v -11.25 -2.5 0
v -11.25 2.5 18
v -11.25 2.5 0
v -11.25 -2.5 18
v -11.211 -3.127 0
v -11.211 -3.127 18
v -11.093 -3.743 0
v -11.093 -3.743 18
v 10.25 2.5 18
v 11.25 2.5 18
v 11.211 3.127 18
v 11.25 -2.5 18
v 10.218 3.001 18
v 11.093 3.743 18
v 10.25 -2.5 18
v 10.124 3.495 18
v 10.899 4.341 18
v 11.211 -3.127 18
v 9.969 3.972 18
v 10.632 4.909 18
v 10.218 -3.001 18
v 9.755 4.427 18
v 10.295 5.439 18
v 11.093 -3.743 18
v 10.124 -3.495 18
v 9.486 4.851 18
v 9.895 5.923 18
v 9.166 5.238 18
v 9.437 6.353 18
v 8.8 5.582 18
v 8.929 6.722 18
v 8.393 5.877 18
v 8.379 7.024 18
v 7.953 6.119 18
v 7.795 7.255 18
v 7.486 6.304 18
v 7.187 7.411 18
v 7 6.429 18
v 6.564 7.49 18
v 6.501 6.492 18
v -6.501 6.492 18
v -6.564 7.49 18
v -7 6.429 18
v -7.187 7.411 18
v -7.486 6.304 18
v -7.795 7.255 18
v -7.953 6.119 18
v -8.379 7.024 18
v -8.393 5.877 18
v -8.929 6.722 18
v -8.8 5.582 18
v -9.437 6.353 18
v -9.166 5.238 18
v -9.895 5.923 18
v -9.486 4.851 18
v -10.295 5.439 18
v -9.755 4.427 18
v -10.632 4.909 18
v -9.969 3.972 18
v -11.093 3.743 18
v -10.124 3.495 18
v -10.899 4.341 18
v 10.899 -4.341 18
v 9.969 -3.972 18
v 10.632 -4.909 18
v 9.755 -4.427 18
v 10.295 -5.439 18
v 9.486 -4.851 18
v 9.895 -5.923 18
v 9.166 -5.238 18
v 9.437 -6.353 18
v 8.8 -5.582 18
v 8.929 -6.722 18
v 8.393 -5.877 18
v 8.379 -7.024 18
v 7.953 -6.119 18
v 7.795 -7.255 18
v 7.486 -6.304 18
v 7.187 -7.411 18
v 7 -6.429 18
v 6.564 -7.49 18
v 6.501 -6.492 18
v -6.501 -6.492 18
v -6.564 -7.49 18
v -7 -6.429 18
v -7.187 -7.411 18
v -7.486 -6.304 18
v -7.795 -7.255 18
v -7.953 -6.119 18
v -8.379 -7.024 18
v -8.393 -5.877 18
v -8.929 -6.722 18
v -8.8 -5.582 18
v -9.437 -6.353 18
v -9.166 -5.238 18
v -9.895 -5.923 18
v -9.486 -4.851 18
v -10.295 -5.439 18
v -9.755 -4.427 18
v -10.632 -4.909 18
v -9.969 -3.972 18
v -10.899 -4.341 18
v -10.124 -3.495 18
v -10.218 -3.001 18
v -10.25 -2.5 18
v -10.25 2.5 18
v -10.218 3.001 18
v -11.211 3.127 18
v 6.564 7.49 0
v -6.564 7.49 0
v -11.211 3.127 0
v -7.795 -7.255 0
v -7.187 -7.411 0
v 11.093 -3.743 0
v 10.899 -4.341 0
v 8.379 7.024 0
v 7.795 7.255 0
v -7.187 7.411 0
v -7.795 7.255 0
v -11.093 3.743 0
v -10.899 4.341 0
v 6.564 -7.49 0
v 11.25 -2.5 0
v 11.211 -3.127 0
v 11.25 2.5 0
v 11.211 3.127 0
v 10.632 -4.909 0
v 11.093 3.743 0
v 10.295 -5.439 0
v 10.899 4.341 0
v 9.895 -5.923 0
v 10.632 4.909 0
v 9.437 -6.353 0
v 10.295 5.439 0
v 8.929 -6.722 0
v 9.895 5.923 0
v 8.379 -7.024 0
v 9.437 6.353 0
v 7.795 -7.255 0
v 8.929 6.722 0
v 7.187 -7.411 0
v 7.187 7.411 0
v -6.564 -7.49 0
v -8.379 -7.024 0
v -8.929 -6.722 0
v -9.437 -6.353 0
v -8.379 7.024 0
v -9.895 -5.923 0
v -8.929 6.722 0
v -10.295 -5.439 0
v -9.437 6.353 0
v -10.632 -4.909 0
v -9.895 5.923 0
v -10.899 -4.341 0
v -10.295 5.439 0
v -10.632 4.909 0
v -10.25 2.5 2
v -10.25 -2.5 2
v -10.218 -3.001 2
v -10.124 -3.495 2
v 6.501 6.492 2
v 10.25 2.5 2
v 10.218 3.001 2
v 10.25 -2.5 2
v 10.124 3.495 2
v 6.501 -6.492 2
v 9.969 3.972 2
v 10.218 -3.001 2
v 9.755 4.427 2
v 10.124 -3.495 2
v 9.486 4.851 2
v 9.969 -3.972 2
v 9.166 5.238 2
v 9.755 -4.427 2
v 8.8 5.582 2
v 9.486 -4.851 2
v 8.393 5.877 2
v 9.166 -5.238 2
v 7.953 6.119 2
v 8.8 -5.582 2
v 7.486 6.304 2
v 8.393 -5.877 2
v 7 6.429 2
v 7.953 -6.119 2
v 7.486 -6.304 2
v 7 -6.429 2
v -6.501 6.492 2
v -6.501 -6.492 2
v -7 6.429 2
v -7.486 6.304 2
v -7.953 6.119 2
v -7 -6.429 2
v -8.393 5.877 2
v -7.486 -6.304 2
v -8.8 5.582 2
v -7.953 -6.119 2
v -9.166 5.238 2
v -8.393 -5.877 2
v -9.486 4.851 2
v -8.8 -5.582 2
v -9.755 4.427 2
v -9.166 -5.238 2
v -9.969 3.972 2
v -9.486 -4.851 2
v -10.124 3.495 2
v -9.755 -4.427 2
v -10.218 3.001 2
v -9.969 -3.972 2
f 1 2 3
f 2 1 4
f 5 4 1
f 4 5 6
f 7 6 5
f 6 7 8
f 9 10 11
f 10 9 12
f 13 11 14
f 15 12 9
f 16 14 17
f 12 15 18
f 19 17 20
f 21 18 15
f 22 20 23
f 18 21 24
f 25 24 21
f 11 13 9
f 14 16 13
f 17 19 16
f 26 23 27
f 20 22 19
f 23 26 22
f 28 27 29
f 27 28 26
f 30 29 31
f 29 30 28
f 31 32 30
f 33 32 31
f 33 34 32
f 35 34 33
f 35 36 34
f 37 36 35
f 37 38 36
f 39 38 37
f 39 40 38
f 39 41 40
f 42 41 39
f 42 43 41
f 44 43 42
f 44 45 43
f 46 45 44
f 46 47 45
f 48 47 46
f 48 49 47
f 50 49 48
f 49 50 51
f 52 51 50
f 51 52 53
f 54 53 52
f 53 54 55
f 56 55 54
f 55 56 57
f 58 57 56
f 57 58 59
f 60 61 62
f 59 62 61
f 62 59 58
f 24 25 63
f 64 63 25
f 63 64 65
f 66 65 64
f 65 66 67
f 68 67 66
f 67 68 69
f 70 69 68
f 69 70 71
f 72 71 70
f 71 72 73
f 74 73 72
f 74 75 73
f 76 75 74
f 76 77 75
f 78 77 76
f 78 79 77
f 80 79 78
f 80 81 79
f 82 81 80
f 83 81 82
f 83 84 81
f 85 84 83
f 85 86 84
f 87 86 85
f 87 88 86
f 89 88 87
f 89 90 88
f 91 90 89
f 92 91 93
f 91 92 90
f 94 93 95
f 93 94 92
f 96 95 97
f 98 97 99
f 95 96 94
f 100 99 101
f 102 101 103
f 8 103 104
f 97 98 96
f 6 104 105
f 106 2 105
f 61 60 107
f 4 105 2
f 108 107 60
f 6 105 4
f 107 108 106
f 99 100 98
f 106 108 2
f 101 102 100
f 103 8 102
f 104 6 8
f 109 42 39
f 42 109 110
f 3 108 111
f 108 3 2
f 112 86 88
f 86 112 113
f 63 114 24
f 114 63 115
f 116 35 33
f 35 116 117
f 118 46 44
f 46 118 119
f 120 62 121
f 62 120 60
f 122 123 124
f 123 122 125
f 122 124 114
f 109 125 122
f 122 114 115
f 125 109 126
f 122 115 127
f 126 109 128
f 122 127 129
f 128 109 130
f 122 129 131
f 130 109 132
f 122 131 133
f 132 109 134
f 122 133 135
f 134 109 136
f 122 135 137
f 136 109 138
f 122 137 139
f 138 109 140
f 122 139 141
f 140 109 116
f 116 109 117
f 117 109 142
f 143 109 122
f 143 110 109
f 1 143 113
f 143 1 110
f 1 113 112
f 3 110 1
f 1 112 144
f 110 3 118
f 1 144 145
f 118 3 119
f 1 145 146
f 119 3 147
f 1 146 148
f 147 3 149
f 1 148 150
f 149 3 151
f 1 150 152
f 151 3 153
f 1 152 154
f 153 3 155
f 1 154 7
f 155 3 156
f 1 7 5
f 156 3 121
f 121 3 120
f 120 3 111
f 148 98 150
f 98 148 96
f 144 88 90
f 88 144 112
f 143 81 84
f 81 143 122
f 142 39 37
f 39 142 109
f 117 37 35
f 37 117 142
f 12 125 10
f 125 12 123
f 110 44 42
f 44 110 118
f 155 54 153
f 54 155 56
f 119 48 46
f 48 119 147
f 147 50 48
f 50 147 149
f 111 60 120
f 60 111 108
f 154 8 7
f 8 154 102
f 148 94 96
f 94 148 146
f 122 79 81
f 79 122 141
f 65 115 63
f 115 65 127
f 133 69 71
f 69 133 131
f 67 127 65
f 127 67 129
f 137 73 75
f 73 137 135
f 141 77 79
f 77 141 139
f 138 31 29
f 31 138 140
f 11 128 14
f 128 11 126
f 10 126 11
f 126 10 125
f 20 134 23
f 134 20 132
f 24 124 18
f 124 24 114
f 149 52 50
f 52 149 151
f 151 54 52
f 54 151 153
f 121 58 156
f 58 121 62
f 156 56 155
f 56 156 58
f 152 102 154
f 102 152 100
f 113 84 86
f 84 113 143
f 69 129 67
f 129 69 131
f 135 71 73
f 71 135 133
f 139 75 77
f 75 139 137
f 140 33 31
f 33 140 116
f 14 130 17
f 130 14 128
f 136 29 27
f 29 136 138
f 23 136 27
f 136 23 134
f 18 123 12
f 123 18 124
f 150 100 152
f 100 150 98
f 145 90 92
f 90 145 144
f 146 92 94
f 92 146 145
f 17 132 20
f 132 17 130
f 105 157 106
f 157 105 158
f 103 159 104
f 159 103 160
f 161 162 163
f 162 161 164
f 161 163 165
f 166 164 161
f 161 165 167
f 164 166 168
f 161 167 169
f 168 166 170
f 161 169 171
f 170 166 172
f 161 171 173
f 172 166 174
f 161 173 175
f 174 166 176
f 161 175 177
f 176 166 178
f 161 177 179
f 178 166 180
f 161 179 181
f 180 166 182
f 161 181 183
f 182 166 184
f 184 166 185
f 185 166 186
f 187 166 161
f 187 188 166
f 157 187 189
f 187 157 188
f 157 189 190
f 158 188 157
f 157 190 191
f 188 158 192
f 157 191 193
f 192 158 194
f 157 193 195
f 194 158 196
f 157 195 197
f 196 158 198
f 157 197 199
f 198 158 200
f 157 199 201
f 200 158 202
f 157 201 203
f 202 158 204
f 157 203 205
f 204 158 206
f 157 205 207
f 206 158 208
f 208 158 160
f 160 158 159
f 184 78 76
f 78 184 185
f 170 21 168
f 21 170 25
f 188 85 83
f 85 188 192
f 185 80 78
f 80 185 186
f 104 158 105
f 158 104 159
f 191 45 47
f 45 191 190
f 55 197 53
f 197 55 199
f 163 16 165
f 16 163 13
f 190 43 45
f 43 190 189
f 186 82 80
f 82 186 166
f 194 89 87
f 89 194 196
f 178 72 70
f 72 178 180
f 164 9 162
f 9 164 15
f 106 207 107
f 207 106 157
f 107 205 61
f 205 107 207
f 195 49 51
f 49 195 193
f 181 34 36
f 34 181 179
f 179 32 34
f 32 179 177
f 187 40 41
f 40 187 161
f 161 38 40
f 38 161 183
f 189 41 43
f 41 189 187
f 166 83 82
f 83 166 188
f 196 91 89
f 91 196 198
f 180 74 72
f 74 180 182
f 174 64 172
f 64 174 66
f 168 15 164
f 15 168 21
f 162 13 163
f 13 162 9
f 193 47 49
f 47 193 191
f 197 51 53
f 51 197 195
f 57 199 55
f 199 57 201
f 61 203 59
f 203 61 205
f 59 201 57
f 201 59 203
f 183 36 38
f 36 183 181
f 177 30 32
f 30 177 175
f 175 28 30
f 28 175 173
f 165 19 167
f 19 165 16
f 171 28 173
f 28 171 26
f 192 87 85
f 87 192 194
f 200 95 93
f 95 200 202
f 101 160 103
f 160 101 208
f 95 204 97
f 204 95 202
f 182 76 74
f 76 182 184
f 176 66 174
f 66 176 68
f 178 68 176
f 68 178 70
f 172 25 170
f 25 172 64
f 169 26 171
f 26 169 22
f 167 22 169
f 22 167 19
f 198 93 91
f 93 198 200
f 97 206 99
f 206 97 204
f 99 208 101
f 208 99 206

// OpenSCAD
$fn = 50;


difference() {
	union() {
		hull() {
			translate(v = [-6.2500000000, 2.5000000000, 0]) {
				cylinder(h = 18, r = 5);
			}
			translate(v = [6.2500000000, 2.5000000000, 0]) {
				cylinder(h = 18, r = 5);
			}
			translate(v = [-6.2500000000, -2.5000000000, 0]) {
				cylinder(h = 18, r = 5);
			}
			translate(v = [6.2500000000, -2.5000000000, 0]) {
				cylinder(h = 18, r = 5);
			}
		}
	}
	union() {
		translate(v = [0, 0, 2]) {
			hull() {
				translate(v = [-6.2500000000, 2.5000000000, 0]) {
					cylinder(h = 16, r = 4);
				}
				translate(v = [6.2500000000, 2.5000000000, 0]) {
					cylinder(h = 16, r = 4);
				}
				translate(v = [-6.2500000000, -2.5000000000, 0]) {
					cylinder(h = 16, r = 4);
				}
				translate(v = [6.2500000000, -2.5000000000, 0]) {
					cylinder(h = 16, r = 4);
				}
			}
		}
	}
}
